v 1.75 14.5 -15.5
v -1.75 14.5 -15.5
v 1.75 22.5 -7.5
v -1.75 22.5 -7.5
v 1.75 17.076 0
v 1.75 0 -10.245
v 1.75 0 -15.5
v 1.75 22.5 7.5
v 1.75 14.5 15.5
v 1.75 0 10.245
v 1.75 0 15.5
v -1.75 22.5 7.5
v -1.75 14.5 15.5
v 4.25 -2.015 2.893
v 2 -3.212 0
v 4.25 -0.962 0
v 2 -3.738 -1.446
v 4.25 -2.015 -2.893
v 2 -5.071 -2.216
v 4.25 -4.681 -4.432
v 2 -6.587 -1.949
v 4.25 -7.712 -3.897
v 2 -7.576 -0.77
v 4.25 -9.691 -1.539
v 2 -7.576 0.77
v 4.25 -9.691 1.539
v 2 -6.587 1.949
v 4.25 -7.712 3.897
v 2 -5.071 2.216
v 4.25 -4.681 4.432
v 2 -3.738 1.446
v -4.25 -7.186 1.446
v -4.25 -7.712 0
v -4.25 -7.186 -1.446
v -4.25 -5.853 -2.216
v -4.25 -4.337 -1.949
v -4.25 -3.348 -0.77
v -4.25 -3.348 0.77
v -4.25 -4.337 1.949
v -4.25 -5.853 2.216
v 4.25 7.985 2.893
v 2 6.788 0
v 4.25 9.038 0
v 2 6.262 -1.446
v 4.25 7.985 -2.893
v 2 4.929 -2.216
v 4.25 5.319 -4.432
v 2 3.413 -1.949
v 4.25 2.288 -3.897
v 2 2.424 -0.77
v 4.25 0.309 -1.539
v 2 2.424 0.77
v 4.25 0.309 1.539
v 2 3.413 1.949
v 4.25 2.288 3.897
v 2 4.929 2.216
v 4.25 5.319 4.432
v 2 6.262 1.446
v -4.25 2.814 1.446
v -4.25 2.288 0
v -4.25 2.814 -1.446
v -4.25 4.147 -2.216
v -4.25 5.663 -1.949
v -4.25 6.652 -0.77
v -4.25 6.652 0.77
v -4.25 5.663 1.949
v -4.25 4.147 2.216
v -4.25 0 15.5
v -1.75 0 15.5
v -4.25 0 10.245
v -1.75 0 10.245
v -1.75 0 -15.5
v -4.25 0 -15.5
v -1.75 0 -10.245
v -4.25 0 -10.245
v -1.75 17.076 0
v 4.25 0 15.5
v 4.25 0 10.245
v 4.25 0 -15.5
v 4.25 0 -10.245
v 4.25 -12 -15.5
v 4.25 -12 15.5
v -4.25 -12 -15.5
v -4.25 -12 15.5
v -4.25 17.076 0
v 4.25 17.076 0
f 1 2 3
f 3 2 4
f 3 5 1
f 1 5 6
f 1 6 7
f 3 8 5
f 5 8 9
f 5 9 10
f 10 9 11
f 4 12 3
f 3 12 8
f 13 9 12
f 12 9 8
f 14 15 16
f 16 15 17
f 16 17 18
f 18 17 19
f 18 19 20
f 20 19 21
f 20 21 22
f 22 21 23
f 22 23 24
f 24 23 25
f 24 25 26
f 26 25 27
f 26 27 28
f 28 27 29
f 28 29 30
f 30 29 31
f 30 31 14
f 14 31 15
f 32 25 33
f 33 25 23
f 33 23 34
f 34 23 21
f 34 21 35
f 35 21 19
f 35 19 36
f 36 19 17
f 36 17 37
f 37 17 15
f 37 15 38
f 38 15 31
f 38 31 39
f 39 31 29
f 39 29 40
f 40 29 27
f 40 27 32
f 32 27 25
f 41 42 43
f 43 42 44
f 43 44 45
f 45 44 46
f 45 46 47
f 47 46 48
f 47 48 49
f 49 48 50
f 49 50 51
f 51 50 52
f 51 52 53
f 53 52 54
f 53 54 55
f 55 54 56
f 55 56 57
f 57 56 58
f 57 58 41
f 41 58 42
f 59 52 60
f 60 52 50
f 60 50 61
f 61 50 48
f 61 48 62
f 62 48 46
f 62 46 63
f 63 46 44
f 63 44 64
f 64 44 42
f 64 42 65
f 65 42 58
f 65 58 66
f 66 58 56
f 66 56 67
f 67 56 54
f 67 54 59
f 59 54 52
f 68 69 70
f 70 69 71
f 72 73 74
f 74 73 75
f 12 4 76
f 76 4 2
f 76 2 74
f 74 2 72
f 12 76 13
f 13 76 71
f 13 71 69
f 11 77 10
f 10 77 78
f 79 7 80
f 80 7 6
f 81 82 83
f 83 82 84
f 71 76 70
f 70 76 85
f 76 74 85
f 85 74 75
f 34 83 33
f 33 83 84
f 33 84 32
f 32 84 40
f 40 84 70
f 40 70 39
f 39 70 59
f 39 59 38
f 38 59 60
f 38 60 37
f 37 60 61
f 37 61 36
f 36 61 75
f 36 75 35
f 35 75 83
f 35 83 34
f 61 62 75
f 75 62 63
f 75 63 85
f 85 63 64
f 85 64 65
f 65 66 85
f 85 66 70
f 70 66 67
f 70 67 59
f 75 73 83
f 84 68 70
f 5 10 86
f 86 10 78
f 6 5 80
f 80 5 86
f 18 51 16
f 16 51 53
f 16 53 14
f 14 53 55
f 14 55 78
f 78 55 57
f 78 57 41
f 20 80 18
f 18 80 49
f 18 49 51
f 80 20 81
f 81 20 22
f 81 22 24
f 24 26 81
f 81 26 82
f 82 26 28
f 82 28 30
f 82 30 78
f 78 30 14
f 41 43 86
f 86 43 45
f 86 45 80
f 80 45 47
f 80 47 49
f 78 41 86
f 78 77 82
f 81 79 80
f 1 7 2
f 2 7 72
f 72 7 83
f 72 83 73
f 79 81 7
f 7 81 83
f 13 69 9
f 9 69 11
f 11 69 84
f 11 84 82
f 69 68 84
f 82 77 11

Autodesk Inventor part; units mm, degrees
ref_plane "YZ Plane" through (0, 0, 0) normal (1, 0, 0) x (0, 1, 0)
ref_plane "XZ Plane" through (0, 0, 0) normal (0, 1, 0) x (-1, 0, 0)
ref_plane "XY Plane" through (0, 0, 0) normal (0, 0, 1) x (1, 0, 0)
sketch "Sketch1" plane through (0, 0, 0) normal (1, 0, 0) x (0, 1, 0)
  line L0 (22.5, 15.5) -> (0, 15.5)
  line L1 (0, 15.5) -> (0, -15.5)
  line L2 (0, -15.5) -> (22.5, -15.5)
  line L3 (22.5, -15.5) -> (22.5, 15.5)
  line L4 (0, -21.7) -> (0, 21.7) projected
  point P0 (0, 0)
  point P1 (22.5, 0)
  dimension "d0" = 31
  dimension "d1" = 22.5
extrude "Extrusion1" add sketch "Sketch1" along normal mid plane 3.5
sketch "Sketch2" plane through (1.75, 0, 0) normal (1, 0, 0) x (0, 0, -1)
  line L0 (-10.2455, 0) -> (0, 17.076)
  line L1 (0, 17.076) -> (10.2455, 0)
  line L2 (-15.5, 0) -> (15.5, 0) projected
  point P0 (0, 0)
  dimension "d31" = 20.491
  dimension "d33" = 17.076
extrude "Extrusion4" add sketch "Sketch2" along normal blind 2.5
mirror "Mirror2" about plane through (0, 0, 0) normal (1, 0, 0) of "Extrusion4"
sketch "Sketch7" plane through (-1.75, 0, -15.5) normal (0, -1, 0) x (1, 0, 0)
  line L0 (0, 0) -> (3.5, 0) projected
  line L1 (3.5, 5.2545) -> (3.5, 0) projected
  line L2 (3.5, 5.2545) -> (6, 5.2545) projected
  line L3 (6, 25.7455) -> (6, 5.2545) projected
  line L4 (3.5, 25.7455) -> (6, 25.7455) projected
  line L5 (3.5, 31) -> (3.5, 25.7455) projected
  line L6 (0, 31) -> (3.5, 31) projected
  line L7 (0, 25.7455) -> (0, 31) projected
  line L8 (0, 25.7455) -> (-2.5, 25.7455) projected
  line L9 (-2.5, 25.7455) -> (-2.5, 5.2545) projected
  line L10 (0, 5.2545) -> (-2.5, 5.2545) projected
  line L11 (0, 0) -> (0, 5.2545) projected
  point P0 (1.75, 15.5)
extrude "Extrusion5" add sketch "Sketch7" along normal blind 12
sketch "Sketch8" plane through (4.25, 0, -10.2455) normal (0, 0, -1) x (-1, 0, 0)
  line L0 (2.5, 0) -> (0, 0) projected
  line L1 (0, 0) -> (0, -12) projected
  line L2 (2.5, -12) -> (0, -12) projected
  line L3 (2.5, 0) -> (2.5, -12) projected
  point P0 (4.25, 0)
extrude "Extrusion6" add sketch "Sketch8" along normal up to surface (5.2545 mm away)
mirror "Mirror3" about plane through (0, 0, 0) normal (0, 0, 1) of "Extrusion6"
mirror "Mirror4" about plane through (0, 0, 0) normal (1, 0, 0) of "Extrusion6", "Mirror3"
sketch "Sketch9" plane through (4.25, 0, 0) normal (1, 0, 0) x (0, 0, -1)
  line L0 (0, 17.076) -> (-10.2455, 0) construction
  line L1 (0, 17.076) -> (0, -12) construction
  line L2 (-15.5, -12) -> (15.5, -12) construction
  line L3 (-5.1228, 8.538) -> (5.1227, 8.538) construction
  line L4 (0, 17.076) -> (10.2455, 0) construction
  line L5 (-7.5227, 4.538) -> (7.5227, 4.538) construction
  line L6 (-13.5227, -5.462) -> (13.5227, -5.462) construction
  point P0 (0, 0)
  dimension "d40" = 4
  dimension "d50" = 10
hole "Hole3" at (4.25, 4.538, 0) direction (-1, 0, 0) diameter 4.5 end through all countersink diameter 9 countersink angle 90
hole "Hole4" at (4.25, -5.462, 0) direction (-1, 0, 0) diameter 4.5 end through all countersink diameter 9 countersink angle 90
chamfer "Chamfer1" distance 8 angle 45 2 edges at (0, 22.5, 15.5) (0, 22.5, -15.5)
properties part number "Traingular Hopper Connector"
